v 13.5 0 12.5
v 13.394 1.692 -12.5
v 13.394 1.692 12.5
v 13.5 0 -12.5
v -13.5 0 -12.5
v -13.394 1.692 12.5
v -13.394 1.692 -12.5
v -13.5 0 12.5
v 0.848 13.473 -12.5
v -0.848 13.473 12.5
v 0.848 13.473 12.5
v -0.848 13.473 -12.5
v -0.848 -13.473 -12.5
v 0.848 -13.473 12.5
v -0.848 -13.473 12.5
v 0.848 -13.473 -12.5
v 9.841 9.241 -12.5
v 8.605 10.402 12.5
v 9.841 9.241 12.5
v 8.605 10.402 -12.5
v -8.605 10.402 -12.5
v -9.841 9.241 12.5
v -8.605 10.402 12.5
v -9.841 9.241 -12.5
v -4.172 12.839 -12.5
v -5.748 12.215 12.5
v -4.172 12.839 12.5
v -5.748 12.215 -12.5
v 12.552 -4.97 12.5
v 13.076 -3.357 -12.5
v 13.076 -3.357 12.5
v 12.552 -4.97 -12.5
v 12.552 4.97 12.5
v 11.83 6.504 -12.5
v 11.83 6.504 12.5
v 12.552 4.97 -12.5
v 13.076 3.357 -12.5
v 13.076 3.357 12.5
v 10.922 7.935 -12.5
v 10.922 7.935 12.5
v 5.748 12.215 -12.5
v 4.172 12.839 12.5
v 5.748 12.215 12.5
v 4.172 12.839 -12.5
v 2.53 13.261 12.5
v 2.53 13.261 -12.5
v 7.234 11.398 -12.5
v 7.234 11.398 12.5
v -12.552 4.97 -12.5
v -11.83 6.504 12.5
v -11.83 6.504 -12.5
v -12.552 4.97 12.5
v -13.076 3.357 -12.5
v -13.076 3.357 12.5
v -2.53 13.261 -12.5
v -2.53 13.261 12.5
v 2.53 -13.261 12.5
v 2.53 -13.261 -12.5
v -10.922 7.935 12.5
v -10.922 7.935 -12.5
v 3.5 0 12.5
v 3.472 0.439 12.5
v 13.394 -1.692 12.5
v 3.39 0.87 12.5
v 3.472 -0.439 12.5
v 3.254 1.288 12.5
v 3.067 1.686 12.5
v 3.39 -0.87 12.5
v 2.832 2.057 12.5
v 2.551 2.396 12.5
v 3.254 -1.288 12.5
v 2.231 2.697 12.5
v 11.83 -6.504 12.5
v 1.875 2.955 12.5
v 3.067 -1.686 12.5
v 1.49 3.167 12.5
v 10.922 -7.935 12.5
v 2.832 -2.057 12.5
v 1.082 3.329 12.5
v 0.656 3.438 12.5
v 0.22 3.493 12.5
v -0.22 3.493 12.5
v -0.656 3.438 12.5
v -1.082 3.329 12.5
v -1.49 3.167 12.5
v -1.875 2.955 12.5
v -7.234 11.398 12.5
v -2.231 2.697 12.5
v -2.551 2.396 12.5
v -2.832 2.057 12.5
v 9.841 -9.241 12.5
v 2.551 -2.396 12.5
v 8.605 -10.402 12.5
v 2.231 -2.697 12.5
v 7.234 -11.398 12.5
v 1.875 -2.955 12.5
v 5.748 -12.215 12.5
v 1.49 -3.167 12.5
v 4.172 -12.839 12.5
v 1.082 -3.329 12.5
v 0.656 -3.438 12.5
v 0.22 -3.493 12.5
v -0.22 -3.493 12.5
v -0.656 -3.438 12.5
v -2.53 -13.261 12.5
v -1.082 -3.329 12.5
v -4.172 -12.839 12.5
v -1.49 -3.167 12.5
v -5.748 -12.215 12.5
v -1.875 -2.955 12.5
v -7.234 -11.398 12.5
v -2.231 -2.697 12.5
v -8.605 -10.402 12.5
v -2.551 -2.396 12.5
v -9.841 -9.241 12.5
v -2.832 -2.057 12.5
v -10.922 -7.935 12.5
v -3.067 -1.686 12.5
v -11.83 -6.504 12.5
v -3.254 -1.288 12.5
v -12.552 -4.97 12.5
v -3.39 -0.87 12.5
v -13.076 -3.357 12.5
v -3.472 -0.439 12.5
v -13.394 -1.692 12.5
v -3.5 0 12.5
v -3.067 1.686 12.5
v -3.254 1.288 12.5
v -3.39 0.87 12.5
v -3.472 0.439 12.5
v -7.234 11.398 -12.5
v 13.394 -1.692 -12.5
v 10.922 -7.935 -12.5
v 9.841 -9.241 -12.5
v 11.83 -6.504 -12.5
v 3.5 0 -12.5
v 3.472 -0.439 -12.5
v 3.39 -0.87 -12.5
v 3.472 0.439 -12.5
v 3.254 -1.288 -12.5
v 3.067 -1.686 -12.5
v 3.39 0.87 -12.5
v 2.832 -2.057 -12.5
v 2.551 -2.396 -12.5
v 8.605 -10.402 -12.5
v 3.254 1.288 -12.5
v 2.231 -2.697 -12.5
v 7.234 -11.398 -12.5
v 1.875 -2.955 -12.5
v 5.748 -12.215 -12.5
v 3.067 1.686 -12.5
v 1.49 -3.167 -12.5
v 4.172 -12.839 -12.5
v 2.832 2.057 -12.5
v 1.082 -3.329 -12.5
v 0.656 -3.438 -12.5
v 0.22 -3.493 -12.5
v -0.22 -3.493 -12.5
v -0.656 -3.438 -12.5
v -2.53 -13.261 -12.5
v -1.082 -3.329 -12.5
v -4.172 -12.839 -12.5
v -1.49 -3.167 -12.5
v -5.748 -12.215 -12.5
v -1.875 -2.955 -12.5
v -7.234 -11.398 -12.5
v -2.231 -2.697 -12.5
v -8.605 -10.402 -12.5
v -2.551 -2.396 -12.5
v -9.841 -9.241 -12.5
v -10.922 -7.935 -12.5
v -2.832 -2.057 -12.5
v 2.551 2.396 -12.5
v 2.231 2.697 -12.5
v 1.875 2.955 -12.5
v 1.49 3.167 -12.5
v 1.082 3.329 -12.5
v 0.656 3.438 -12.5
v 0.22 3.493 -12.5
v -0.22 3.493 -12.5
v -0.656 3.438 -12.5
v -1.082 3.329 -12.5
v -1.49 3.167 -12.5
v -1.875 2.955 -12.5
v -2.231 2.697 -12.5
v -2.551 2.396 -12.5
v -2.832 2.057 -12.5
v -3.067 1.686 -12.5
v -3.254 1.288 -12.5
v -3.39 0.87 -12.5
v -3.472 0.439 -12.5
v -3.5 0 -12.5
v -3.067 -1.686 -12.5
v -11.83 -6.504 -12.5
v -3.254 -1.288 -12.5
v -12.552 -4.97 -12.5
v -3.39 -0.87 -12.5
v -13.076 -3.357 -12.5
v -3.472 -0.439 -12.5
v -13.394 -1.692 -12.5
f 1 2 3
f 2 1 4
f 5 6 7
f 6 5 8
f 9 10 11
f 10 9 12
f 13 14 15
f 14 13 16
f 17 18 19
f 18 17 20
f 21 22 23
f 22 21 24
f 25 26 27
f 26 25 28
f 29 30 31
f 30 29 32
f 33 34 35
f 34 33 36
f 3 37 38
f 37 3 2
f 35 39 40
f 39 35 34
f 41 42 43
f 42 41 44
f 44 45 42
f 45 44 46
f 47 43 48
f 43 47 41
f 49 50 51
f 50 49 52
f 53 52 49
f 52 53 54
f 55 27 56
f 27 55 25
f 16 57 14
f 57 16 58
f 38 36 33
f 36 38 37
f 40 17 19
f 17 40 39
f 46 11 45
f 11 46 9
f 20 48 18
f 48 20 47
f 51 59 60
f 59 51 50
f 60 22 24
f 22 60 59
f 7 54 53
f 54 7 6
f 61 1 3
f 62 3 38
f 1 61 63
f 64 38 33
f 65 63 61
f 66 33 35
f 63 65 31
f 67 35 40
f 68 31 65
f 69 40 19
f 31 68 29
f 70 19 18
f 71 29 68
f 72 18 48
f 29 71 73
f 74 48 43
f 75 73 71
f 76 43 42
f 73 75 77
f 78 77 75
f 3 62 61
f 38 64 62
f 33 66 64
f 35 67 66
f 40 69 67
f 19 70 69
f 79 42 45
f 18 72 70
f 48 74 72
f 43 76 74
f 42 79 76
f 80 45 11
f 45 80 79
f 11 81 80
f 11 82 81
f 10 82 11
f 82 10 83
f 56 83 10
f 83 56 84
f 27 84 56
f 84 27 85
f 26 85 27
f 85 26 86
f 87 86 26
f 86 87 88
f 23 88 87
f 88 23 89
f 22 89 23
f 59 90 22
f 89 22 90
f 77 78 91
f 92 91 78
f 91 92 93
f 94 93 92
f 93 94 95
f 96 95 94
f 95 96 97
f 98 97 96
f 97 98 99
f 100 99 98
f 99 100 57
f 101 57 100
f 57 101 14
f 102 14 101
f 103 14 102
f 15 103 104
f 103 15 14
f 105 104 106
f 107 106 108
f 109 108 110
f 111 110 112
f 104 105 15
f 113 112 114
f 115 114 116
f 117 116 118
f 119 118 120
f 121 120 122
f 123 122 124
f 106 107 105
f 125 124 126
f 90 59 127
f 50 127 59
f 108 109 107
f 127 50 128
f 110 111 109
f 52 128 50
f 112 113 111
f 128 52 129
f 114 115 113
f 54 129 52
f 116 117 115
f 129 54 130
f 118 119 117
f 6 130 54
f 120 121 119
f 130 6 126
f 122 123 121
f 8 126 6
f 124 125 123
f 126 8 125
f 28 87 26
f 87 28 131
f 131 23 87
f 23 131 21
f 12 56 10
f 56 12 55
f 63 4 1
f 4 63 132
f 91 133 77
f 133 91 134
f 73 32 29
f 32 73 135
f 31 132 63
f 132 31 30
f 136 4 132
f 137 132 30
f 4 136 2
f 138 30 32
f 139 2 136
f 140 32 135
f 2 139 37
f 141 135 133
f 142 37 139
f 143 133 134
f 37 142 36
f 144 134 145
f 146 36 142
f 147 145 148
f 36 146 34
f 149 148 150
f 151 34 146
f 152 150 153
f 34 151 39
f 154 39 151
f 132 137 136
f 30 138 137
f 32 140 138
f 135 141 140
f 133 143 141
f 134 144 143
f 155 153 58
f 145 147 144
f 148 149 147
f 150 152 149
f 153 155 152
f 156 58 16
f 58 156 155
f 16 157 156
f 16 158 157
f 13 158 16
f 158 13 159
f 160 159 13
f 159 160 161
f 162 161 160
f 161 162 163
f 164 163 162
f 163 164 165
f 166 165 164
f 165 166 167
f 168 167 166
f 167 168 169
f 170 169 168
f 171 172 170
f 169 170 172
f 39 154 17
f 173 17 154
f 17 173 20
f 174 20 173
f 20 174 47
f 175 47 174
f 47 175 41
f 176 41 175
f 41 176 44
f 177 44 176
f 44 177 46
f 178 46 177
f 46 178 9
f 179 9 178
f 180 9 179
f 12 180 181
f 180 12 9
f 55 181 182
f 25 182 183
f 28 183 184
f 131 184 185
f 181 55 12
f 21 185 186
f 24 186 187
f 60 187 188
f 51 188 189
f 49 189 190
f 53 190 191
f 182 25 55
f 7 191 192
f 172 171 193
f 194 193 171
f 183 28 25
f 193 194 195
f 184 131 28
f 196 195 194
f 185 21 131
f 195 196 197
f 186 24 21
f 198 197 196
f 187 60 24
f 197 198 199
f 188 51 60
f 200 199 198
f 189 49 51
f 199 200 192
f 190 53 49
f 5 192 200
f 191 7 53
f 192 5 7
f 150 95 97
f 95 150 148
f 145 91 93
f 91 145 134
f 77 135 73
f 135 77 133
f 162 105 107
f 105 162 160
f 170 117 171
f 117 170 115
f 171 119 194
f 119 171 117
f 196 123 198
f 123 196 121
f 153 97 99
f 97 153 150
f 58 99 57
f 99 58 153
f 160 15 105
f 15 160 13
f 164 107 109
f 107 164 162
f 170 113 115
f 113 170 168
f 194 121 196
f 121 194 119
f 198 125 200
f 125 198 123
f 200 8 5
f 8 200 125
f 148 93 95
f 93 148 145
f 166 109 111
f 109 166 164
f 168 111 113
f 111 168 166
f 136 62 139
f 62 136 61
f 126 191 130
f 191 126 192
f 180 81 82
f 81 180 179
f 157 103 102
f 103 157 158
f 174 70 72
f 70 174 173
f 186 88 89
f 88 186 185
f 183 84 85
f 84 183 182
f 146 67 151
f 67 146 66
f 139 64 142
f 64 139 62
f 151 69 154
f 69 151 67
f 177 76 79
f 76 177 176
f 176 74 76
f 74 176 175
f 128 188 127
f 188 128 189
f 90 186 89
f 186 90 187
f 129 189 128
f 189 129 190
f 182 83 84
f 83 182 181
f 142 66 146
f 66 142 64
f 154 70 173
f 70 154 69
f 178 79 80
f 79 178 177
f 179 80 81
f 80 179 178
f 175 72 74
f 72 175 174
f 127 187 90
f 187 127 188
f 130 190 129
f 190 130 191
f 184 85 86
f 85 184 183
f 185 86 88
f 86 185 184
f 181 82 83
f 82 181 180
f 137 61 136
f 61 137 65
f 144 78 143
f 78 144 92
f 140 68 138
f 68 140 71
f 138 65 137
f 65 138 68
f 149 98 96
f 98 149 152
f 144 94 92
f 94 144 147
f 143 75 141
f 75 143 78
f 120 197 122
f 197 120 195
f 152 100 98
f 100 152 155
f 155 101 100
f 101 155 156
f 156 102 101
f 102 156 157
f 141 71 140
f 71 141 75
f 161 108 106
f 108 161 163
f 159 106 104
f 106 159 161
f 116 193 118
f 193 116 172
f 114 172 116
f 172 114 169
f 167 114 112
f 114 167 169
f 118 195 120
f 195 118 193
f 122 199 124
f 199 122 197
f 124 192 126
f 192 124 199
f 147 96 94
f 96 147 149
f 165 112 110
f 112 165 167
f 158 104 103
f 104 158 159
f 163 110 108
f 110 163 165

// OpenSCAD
$fn = 50;


difference() {
	union() {
		translate(v = [0, 0, -12.5000000000]) {
			cylinder(h = 25, r = 13.5000000000);
		}
	}
	union() {
		translate(v = [0, 0, -100.0000000000]) {
			cylinder(h = 200, r = 3.5000000000);
		}
	}
}
